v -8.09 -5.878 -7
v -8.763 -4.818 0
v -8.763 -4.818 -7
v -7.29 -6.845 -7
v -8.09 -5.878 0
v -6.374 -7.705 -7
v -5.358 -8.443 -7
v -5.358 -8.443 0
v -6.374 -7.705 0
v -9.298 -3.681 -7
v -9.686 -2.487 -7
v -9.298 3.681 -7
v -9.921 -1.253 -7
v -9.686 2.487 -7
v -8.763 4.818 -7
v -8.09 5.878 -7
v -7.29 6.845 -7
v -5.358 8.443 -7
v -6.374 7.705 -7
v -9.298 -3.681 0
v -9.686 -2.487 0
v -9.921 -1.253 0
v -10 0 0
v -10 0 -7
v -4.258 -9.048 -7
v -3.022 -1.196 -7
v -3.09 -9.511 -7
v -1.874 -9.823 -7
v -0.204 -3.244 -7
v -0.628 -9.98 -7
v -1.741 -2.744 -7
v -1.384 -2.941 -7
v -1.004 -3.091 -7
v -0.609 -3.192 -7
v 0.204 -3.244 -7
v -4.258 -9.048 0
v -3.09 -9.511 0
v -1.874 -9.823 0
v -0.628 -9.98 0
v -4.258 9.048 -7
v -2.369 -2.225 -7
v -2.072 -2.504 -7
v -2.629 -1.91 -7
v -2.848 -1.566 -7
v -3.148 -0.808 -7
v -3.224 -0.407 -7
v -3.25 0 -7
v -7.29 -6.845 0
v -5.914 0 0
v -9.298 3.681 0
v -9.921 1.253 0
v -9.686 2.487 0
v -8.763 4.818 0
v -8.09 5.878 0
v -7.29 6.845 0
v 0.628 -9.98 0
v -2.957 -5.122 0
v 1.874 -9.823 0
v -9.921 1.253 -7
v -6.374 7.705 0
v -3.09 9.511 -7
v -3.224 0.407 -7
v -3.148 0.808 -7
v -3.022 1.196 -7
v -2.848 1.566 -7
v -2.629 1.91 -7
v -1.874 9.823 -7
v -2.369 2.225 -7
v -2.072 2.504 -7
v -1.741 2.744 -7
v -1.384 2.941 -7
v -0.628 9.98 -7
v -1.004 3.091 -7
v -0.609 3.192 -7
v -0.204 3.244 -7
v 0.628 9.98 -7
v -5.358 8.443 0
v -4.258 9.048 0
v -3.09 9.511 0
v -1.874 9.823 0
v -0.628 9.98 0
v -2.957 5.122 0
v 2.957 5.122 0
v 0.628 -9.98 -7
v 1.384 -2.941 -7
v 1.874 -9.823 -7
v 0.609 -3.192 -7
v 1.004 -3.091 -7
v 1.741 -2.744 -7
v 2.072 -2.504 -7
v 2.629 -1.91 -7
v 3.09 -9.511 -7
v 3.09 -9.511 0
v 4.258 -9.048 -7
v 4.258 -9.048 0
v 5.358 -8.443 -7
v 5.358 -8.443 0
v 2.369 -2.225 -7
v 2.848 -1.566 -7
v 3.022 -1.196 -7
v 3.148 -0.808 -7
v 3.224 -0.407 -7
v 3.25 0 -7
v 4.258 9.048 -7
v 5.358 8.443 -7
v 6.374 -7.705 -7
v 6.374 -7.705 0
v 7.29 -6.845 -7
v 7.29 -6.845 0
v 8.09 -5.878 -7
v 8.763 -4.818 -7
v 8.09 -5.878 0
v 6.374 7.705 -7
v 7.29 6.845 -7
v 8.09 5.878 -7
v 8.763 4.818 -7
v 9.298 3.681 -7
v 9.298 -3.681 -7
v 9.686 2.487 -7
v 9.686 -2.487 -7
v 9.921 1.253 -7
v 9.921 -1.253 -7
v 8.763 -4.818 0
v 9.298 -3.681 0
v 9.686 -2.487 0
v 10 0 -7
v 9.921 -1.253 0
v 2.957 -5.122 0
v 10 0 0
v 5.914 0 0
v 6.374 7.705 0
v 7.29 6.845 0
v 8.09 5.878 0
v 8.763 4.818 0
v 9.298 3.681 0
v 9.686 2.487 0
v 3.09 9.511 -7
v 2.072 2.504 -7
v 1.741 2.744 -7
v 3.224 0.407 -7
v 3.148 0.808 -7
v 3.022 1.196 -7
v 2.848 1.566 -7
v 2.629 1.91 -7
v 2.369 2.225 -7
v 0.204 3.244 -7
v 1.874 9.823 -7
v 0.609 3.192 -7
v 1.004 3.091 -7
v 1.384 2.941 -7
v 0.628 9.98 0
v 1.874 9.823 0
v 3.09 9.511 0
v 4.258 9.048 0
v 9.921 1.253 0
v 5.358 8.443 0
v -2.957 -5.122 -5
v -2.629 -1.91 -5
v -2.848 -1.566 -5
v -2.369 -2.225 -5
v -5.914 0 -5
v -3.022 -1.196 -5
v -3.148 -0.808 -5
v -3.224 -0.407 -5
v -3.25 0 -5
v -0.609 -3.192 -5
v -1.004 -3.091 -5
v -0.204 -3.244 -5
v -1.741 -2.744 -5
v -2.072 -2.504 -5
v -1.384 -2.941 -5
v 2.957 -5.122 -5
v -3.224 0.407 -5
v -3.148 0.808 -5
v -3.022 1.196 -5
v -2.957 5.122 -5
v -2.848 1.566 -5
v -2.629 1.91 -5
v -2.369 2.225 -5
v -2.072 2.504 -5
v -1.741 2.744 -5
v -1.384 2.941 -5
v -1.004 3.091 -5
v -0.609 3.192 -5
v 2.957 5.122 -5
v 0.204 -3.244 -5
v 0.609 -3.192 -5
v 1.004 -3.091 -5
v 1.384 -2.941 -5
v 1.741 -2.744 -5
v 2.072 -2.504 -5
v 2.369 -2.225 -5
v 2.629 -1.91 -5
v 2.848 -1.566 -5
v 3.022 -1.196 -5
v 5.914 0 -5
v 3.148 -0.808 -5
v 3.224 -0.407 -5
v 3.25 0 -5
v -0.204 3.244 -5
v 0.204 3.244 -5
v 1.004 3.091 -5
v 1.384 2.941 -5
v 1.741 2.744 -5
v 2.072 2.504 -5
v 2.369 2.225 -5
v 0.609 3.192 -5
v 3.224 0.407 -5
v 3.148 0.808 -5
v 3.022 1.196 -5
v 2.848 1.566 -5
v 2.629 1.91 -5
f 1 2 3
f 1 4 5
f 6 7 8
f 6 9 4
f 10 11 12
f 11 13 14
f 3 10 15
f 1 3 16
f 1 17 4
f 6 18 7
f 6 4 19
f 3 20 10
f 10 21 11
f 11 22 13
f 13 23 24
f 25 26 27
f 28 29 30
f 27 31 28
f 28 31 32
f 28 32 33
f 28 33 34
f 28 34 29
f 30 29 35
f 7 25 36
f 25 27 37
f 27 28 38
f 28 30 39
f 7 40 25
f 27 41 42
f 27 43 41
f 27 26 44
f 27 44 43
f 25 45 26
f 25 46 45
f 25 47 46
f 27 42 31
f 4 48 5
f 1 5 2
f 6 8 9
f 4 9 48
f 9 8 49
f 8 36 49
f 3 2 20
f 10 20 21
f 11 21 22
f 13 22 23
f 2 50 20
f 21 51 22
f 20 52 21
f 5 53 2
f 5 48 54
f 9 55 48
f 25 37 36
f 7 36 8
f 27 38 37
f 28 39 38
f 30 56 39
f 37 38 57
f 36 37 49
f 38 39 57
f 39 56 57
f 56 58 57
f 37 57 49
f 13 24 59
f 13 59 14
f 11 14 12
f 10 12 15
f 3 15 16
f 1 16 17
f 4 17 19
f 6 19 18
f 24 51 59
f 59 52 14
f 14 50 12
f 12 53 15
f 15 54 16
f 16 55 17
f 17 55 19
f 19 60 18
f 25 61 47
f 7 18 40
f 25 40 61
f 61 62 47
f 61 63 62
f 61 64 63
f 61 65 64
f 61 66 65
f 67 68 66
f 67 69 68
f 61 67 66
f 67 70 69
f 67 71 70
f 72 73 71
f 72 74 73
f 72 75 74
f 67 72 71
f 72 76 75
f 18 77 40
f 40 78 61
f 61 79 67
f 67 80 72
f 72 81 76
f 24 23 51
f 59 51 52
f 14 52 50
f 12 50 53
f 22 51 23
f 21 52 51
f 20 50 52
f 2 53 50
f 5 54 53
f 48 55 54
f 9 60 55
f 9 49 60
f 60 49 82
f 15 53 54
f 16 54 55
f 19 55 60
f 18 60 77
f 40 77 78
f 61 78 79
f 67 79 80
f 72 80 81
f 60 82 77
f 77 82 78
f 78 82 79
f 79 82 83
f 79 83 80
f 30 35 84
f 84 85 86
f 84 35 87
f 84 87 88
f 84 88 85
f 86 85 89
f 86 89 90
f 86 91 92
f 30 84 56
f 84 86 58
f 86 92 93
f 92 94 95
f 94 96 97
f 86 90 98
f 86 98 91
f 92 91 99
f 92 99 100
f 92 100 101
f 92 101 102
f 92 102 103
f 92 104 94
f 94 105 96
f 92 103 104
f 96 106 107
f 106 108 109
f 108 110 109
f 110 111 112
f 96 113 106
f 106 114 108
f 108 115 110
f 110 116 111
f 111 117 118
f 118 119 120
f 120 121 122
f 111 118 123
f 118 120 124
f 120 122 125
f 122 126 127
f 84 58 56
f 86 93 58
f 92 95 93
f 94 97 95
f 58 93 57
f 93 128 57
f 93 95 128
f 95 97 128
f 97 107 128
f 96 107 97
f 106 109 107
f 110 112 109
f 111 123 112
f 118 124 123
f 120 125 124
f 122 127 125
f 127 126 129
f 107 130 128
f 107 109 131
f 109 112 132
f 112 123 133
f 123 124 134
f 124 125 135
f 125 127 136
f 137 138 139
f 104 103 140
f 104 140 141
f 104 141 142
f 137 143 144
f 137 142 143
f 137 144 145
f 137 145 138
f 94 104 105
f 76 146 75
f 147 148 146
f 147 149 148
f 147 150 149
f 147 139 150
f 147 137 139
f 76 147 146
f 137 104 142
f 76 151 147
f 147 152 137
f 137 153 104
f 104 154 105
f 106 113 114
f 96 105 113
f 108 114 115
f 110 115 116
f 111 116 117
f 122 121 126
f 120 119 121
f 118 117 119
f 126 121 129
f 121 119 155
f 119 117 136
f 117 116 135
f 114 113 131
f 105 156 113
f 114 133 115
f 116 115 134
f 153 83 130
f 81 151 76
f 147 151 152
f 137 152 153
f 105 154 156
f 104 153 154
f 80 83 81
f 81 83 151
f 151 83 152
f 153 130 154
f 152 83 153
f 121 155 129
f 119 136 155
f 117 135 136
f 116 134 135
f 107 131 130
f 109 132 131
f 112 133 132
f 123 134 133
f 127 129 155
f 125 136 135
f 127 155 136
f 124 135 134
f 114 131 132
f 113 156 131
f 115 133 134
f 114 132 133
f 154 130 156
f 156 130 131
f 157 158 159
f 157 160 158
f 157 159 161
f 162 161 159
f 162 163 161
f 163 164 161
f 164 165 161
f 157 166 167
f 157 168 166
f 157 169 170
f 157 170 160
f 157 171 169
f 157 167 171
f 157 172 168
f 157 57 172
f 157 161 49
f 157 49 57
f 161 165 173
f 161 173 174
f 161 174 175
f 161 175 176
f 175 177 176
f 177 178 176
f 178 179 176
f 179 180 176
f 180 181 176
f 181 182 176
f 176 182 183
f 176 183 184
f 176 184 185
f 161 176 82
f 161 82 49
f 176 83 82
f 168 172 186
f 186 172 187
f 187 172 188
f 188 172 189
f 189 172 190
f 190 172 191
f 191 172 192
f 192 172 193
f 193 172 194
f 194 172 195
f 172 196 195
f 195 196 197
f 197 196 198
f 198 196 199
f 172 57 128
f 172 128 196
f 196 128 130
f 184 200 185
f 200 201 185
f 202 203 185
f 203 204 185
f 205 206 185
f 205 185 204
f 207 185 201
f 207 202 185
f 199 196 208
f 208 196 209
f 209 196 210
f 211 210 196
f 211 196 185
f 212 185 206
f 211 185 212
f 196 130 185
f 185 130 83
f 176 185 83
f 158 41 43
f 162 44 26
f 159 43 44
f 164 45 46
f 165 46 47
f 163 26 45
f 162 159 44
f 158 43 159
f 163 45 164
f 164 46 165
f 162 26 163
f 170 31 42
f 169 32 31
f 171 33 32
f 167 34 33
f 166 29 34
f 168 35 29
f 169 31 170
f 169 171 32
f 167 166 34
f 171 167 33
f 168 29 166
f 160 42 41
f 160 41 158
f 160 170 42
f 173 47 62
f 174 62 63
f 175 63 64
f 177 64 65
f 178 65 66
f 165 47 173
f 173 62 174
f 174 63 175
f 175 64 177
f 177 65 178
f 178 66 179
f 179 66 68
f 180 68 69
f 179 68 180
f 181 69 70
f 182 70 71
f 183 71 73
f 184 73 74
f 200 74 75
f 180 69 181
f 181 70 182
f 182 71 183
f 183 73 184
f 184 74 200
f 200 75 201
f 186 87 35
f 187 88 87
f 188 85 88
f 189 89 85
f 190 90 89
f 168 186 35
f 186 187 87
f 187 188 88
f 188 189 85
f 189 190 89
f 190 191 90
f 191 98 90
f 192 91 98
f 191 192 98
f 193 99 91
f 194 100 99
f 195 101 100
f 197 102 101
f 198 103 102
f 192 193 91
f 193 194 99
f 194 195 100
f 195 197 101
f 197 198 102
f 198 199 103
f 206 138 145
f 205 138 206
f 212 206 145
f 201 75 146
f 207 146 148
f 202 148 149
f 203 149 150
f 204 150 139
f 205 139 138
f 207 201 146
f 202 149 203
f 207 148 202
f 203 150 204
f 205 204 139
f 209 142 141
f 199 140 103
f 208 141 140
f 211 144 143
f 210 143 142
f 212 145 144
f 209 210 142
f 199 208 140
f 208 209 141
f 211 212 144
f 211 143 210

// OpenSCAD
$fn = 50;

difference() {
	union() {
		translate(v = [0, 0, -7.0]) {
			cylinder(h = 7.0, r = 10.0);
		}
		#translate(v = [0, 0, -8.5]) {
			cylinder(h = 8.5, r = 2.875);
		}
	}
	union() {
		translate(v = [0, 0, 0]) {
			rotate(a = [0, 0, 0]) {
				difference() {
					union() {
						translate(v = [0, 0, -5]) {
							linear_extrude(height = 5) {
								polygon(points = [[5.914249999999999, 0.0], [2.957125, 5.1218907443321156], [-2.9571249999999982, 5.1218907443321156], [-5.914249999999999, 7.242867331857232e-16], [-2.9571250000000022, -5.121890744332115], [2.9571249999999956, -5.121890744332118]]);
							}
						}
					}
					union();
				}
			}
		}
		#translate(v = [0, 0, -100.0]) {
			cylinder(h = 200, r = 3.25);
		}
	}
}
